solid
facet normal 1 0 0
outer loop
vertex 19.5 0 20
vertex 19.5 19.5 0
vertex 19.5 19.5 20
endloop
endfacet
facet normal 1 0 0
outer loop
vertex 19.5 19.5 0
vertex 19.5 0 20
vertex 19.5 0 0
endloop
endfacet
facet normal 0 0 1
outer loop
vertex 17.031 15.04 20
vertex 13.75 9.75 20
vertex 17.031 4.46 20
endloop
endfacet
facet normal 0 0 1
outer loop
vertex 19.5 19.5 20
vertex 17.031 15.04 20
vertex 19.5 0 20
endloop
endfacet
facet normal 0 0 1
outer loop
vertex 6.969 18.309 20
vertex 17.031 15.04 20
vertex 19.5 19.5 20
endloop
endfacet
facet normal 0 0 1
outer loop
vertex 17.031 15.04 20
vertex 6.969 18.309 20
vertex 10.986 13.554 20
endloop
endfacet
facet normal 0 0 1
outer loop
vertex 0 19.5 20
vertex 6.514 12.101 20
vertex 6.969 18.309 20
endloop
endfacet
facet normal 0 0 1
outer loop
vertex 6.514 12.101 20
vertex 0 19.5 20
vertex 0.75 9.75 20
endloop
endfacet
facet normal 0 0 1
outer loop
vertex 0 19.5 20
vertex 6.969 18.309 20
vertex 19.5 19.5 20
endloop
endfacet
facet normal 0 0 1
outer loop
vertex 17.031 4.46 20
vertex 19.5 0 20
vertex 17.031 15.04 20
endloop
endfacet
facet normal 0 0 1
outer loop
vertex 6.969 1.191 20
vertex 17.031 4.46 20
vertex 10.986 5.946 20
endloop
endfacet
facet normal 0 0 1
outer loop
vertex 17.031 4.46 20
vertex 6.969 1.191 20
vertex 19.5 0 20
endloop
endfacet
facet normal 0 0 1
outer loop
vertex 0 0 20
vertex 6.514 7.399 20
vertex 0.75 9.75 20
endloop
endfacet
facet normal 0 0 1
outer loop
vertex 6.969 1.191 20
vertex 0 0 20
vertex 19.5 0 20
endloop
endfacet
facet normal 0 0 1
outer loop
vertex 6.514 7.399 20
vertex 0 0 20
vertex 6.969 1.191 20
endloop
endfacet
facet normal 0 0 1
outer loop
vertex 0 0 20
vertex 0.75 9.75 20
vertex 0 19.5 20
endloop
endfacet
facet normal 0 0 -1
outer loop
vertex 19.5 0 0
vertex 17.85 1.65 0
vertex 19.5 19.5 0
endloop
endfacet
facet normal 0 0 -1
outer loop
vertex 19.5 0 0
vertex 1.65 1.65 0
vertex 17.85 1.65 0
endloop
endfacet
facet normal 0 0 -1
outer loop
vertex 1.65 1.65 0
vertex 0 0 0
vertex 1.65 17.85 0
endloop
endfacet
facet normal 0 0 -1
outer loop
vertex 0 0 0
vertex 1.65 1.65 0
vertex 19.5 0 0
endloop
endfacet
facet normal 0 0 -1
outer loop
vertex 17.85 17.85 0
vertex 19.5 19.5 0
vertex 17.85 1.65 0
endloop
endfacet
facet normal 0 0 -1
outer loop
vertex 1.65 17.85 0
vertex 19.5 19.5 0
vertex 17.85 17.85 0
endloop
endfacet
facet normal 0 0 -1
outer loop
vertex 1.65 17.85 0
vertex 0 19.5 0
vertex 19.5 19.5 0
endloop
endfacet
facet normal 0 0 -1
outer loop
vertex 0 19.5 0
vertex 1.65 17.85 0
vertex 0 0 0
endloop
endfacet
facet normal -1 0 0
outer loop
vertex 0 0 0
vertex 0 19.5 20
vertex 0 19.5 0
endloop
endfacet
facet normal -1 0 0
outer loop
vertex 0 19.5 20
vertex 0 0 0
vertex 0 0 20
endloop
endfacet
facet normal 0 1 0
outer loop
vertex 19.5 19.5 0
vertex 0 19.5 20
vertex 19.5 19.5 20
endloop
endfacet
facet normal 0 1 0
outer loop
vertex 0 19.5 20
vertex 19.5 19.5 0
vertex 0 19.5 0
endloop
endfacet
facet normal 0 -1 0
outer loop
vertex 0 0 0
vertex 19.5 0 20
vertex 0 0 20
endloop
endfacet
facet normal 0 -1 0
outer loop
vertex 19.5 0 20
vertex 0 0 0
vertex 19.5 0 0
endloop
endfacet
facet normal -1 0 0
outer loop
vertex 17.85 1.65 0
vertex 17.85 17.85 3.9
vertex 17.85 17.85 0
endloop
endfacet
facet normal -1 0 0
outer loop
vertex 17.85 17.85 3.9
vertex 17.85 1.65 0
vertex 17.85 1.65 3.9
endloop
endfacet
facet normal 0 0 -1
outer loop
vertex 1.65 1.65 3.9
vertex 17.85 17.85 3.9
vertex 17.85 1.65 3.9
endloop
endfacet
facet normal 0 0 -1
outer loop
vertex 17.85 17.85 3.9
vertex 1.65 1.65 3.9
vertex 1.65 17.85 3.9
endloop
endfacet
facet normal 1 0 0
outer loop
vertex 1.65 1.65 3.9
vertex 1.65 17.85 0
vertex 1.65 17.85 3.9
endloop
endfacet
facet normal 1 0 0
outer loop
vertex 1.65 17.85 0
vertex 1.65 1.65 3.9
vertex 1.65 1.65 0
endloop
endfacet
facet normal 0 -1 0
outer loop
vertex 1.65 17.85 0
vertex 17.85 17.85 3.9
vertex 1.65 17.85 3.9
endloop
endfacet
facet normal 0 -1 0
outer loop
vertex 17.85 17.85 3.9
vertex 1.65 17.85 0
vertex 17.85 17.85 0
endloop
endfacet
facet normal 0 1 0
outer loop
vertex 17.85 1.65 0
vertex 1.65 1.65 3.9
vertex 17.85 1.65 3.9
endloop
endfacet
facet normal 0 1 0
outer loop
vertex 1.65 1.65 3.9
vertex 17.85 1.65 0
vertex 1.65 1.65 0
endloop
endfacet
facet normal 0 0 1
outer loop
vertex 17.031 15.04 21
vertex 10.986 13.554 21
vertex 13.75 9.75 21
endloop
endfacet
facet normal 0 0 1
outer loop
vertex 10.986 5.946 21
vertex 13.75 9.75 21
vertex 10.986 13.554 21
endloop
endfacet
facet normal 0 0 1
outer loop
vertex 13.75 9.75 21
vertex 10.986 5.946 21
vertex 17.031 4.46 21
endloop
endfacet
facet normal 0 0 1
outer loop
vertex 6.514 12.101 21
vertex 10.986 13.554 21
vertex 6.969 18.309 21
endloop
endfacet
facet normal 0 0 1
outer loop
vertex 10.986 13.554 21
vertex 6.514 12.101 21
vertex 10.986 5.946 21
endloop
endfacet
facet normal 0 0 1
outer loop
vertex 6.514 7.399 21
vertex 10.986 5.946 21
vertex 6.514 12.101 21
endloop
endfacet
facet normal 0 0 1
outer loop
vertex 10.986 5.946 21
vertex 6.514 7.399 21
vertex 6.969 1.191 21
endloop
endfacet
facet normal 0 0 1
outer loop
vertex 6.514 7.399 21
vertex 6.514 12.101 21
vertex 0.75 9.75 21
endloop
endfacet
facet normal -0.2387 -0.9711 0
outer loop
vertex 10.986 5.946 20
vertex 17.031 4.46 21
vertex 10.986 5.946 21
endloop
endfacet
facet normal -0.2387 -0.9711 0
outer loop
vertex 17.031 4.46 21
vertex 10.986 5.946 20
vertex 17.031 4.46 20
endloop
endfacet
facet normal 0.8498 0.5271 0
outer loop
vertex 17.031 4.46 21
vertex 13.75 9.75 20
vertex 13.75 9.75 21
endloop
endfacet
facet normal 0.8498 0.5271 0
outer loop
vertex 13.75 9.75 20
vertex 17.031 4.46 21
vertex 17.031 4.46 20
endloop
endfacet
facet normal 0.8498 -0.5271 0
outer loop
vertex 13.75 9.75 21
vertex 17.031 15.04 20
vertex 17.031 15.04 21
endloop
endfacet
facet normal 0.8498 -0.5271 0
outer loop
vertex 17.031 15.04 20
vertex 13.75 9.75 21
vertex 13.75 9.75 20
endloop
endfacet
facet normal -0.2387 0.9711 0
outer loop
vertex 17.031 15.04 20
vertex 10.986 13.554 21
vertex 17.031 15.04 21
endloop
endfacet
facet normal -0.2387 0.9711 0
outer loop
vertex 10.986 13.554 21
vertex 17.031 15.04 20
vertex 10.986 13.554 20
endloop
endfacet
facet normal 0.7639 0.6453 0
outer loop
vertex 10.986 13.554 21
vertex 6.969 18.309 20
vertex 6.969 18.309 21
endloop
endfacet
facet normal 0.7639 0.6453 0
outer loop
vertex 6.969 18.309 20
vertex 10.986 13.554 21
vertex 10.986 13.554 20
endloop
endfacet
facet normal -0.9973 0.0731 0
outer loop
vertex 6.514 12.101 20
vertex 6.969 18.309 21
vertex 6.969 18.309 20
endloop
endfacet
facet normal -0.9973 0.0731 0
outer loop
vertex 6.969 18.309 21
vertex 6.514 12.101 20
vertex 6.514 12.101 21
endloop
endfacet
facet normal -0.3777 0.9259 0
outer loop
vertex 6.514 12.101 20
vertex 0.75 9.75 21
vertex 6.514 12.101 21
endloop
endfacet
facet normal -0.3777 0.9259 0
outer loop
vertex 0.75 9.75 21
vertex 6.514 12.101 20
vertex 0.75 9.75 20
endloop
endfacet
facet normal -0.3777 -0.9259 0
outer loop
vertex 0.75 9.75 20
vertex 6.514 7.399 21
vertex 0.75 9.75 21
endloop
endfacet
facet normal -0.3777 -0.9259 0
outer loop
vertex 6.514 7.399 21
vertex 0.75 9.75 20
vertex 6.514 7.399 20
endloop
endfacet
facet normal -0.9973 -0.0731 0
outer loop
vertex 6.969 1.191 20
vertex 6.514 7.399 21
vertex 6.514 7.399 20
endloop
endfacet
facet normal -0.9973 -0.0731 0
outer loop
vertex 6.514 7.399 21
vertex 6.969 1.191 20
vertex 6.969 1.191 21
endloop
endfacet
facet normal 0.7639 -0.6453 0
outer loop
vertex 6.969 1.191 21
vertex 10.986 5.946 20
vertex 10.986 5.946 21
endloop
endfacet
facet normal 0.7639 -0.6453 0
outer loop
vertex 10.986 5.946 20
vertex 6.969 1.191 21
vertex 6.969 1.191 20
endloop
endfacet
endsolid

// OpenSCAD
// file: CommonModules.scad
//    $$$$$$\   $$$$$$\   $$$$$$\  $$\   $$\ $$$$$$\ $$$$$$$\  $$$$$$$$\ 
//    $$  __$$\ $$  __$$\ $$  __$$\ $$ |  $$ |\_$$  _|$$  __$$\ $$  _____|
//    $$ /  $$ |$$ /  \__|$$ /  $$ |$$ |  $$ |  $$ |  $$ |  $$ |$$ |      
//    $$$$$$$$ |$$ |      $$ |  $$ |$$ |  $$ |  $$ |  $$$$$$$  |$$$$$\    
//    $$  __$$ |$$ |      $$ |  $$ |$$ |  $$ |  $$ |  $$  __$$< $$  __|   
//    $$ |  $$ |$$ |  $$\ $$ $$\$$ |$$ |  $$ |  $$ |  $$ |  $$ |$$ |      
//    $$ |  $$ |\$$$$$$  |\$$$$$$ / \$$$$$$  |$$$$$$\ $$ |  $$ |$$$$$$$$\ 
//    \__|  \__| \______/  \___$$$\  \______/ \______|\__|  \__|\________|
//                            \___|                                      
//      
//       Print and play - OpenScad project - by Bekkalizer and ChatGPT
// 
// This file is part of the Acquire stl project.
// Copyright (C) 2025 Bekkalizer
//
// Acquire stl project is free software: you can redistribute it and/or modify
// it under the terms of the GNU General Public License as published
// by the Free Software Foundation, either version 3 of the License,
// or (at your option) any later version.
//
// Acquire stl project is distributed in the hope that it will be useful,
// but WITHOUT ANY WARRANTY; without even the implied warranty of
// MERCHANTABILITY or FITNESS FOR A PARTICULAR PURPOSE. See the
// GNU General Public License for more details.
//
// You should have received a copy of the GNU General Public License
// along with this program. If not, see <https://www.gnu.org/licenses/>.

module cube_with_extruded_bottom( cube_size = [19.5, 19.5, 5] ) {
    //Main build script parameters:
    max_width = 19.2;
    top_lip = 2;
    top_height = 3;
    //Calculated hole size:
    inside_margins = 1;
    hole_width = max_width - 2 * (top_lip) + inside_margins;
    hole_height = top_height + inside_margins;
    
    hole_size = [hole_width, hole_width, hole_height]; // Hole dimensions (same height as cube)
    hole_offset = [(cube_size[0] - hole_size[0]) / 2, (cube_size[1] - hole_size[1]) / 2, -0.1]; // Centered on bottom
    difference() {
        // Main Cube
        cube(cube_size);
        
        // Hole Cube (subtracting from bottom)
        translate(hole_offset)
            cube(hole_size);
    }
}
// main file
//    $$$$$$\   $$$$$$\   $$$$$$\  $$\   $$\ $$$$$$\ $$$$$$$\  $$$$$$$$\ 
//    $$  __$$\ $$  __$$\ $$  __$$\ $$ |  $$ |\_$$  _|$$  __$$\ $$  _____|
//    $$ /  $$ |$$ /  \__|$$ /  $$ |$$ |  $$ |  $$ |  $$ |  $$ |$$ |      
//    $$$$$$$$ |$$ |      $$ |  $$ |$$ |  $$ |  $$ |  $$$$$$$  |$$$$$\    
//    $$  __$$ |$$ |      $$ |  $$ |$$ |  $$ |  $$ |  $$  __$$< $$  __|   
//    $$ |  $$ |$$ |  $$\ $$ $$\$$ |$$ |  $$ |  $$ |  $$ |  $$ |$$ |      
//    $$ |  $$ |\$$$$$$  |\$$$$$$ / \$$$$$$  |$$$$$$\ $$ |  $$ |$$$$$$$$\ 
//    \__|  \__| \______/  \___$$$\  \______/ \______|\__|  \__|\________|
//                            \___|                                      
//      
//       Print and play - OpenScad project - by Bekkalizer and ChatGPT

use <CommonModules.scad>

//Parameters
star_height = 1;
star_radius = 9;
star_inner_radius = 4;

bottom_width = 19.5;
bottom_height = 20;

module star(p=5, r1=4, r2=10) {
  s = [for(i=[0:p*2-1]) 
    [
      (i % 2 == 0 ? r1 : r2)*cos(180*i/p),
      (i % 2 == 0 ? r1 : r2)*sin(180*i/p)
    ]
  ];
  polygon(s);
}

union () {
    cube_with_extruded_bottom([bottom_width, bottom_width, bottom_height]);

    translate([bottom_width/2,bottom_width/2,bottom_height])
        linear_extrude(star_height)
            star(p = 5, r1 = star_inner_radius, r2 = star_radius);
}
